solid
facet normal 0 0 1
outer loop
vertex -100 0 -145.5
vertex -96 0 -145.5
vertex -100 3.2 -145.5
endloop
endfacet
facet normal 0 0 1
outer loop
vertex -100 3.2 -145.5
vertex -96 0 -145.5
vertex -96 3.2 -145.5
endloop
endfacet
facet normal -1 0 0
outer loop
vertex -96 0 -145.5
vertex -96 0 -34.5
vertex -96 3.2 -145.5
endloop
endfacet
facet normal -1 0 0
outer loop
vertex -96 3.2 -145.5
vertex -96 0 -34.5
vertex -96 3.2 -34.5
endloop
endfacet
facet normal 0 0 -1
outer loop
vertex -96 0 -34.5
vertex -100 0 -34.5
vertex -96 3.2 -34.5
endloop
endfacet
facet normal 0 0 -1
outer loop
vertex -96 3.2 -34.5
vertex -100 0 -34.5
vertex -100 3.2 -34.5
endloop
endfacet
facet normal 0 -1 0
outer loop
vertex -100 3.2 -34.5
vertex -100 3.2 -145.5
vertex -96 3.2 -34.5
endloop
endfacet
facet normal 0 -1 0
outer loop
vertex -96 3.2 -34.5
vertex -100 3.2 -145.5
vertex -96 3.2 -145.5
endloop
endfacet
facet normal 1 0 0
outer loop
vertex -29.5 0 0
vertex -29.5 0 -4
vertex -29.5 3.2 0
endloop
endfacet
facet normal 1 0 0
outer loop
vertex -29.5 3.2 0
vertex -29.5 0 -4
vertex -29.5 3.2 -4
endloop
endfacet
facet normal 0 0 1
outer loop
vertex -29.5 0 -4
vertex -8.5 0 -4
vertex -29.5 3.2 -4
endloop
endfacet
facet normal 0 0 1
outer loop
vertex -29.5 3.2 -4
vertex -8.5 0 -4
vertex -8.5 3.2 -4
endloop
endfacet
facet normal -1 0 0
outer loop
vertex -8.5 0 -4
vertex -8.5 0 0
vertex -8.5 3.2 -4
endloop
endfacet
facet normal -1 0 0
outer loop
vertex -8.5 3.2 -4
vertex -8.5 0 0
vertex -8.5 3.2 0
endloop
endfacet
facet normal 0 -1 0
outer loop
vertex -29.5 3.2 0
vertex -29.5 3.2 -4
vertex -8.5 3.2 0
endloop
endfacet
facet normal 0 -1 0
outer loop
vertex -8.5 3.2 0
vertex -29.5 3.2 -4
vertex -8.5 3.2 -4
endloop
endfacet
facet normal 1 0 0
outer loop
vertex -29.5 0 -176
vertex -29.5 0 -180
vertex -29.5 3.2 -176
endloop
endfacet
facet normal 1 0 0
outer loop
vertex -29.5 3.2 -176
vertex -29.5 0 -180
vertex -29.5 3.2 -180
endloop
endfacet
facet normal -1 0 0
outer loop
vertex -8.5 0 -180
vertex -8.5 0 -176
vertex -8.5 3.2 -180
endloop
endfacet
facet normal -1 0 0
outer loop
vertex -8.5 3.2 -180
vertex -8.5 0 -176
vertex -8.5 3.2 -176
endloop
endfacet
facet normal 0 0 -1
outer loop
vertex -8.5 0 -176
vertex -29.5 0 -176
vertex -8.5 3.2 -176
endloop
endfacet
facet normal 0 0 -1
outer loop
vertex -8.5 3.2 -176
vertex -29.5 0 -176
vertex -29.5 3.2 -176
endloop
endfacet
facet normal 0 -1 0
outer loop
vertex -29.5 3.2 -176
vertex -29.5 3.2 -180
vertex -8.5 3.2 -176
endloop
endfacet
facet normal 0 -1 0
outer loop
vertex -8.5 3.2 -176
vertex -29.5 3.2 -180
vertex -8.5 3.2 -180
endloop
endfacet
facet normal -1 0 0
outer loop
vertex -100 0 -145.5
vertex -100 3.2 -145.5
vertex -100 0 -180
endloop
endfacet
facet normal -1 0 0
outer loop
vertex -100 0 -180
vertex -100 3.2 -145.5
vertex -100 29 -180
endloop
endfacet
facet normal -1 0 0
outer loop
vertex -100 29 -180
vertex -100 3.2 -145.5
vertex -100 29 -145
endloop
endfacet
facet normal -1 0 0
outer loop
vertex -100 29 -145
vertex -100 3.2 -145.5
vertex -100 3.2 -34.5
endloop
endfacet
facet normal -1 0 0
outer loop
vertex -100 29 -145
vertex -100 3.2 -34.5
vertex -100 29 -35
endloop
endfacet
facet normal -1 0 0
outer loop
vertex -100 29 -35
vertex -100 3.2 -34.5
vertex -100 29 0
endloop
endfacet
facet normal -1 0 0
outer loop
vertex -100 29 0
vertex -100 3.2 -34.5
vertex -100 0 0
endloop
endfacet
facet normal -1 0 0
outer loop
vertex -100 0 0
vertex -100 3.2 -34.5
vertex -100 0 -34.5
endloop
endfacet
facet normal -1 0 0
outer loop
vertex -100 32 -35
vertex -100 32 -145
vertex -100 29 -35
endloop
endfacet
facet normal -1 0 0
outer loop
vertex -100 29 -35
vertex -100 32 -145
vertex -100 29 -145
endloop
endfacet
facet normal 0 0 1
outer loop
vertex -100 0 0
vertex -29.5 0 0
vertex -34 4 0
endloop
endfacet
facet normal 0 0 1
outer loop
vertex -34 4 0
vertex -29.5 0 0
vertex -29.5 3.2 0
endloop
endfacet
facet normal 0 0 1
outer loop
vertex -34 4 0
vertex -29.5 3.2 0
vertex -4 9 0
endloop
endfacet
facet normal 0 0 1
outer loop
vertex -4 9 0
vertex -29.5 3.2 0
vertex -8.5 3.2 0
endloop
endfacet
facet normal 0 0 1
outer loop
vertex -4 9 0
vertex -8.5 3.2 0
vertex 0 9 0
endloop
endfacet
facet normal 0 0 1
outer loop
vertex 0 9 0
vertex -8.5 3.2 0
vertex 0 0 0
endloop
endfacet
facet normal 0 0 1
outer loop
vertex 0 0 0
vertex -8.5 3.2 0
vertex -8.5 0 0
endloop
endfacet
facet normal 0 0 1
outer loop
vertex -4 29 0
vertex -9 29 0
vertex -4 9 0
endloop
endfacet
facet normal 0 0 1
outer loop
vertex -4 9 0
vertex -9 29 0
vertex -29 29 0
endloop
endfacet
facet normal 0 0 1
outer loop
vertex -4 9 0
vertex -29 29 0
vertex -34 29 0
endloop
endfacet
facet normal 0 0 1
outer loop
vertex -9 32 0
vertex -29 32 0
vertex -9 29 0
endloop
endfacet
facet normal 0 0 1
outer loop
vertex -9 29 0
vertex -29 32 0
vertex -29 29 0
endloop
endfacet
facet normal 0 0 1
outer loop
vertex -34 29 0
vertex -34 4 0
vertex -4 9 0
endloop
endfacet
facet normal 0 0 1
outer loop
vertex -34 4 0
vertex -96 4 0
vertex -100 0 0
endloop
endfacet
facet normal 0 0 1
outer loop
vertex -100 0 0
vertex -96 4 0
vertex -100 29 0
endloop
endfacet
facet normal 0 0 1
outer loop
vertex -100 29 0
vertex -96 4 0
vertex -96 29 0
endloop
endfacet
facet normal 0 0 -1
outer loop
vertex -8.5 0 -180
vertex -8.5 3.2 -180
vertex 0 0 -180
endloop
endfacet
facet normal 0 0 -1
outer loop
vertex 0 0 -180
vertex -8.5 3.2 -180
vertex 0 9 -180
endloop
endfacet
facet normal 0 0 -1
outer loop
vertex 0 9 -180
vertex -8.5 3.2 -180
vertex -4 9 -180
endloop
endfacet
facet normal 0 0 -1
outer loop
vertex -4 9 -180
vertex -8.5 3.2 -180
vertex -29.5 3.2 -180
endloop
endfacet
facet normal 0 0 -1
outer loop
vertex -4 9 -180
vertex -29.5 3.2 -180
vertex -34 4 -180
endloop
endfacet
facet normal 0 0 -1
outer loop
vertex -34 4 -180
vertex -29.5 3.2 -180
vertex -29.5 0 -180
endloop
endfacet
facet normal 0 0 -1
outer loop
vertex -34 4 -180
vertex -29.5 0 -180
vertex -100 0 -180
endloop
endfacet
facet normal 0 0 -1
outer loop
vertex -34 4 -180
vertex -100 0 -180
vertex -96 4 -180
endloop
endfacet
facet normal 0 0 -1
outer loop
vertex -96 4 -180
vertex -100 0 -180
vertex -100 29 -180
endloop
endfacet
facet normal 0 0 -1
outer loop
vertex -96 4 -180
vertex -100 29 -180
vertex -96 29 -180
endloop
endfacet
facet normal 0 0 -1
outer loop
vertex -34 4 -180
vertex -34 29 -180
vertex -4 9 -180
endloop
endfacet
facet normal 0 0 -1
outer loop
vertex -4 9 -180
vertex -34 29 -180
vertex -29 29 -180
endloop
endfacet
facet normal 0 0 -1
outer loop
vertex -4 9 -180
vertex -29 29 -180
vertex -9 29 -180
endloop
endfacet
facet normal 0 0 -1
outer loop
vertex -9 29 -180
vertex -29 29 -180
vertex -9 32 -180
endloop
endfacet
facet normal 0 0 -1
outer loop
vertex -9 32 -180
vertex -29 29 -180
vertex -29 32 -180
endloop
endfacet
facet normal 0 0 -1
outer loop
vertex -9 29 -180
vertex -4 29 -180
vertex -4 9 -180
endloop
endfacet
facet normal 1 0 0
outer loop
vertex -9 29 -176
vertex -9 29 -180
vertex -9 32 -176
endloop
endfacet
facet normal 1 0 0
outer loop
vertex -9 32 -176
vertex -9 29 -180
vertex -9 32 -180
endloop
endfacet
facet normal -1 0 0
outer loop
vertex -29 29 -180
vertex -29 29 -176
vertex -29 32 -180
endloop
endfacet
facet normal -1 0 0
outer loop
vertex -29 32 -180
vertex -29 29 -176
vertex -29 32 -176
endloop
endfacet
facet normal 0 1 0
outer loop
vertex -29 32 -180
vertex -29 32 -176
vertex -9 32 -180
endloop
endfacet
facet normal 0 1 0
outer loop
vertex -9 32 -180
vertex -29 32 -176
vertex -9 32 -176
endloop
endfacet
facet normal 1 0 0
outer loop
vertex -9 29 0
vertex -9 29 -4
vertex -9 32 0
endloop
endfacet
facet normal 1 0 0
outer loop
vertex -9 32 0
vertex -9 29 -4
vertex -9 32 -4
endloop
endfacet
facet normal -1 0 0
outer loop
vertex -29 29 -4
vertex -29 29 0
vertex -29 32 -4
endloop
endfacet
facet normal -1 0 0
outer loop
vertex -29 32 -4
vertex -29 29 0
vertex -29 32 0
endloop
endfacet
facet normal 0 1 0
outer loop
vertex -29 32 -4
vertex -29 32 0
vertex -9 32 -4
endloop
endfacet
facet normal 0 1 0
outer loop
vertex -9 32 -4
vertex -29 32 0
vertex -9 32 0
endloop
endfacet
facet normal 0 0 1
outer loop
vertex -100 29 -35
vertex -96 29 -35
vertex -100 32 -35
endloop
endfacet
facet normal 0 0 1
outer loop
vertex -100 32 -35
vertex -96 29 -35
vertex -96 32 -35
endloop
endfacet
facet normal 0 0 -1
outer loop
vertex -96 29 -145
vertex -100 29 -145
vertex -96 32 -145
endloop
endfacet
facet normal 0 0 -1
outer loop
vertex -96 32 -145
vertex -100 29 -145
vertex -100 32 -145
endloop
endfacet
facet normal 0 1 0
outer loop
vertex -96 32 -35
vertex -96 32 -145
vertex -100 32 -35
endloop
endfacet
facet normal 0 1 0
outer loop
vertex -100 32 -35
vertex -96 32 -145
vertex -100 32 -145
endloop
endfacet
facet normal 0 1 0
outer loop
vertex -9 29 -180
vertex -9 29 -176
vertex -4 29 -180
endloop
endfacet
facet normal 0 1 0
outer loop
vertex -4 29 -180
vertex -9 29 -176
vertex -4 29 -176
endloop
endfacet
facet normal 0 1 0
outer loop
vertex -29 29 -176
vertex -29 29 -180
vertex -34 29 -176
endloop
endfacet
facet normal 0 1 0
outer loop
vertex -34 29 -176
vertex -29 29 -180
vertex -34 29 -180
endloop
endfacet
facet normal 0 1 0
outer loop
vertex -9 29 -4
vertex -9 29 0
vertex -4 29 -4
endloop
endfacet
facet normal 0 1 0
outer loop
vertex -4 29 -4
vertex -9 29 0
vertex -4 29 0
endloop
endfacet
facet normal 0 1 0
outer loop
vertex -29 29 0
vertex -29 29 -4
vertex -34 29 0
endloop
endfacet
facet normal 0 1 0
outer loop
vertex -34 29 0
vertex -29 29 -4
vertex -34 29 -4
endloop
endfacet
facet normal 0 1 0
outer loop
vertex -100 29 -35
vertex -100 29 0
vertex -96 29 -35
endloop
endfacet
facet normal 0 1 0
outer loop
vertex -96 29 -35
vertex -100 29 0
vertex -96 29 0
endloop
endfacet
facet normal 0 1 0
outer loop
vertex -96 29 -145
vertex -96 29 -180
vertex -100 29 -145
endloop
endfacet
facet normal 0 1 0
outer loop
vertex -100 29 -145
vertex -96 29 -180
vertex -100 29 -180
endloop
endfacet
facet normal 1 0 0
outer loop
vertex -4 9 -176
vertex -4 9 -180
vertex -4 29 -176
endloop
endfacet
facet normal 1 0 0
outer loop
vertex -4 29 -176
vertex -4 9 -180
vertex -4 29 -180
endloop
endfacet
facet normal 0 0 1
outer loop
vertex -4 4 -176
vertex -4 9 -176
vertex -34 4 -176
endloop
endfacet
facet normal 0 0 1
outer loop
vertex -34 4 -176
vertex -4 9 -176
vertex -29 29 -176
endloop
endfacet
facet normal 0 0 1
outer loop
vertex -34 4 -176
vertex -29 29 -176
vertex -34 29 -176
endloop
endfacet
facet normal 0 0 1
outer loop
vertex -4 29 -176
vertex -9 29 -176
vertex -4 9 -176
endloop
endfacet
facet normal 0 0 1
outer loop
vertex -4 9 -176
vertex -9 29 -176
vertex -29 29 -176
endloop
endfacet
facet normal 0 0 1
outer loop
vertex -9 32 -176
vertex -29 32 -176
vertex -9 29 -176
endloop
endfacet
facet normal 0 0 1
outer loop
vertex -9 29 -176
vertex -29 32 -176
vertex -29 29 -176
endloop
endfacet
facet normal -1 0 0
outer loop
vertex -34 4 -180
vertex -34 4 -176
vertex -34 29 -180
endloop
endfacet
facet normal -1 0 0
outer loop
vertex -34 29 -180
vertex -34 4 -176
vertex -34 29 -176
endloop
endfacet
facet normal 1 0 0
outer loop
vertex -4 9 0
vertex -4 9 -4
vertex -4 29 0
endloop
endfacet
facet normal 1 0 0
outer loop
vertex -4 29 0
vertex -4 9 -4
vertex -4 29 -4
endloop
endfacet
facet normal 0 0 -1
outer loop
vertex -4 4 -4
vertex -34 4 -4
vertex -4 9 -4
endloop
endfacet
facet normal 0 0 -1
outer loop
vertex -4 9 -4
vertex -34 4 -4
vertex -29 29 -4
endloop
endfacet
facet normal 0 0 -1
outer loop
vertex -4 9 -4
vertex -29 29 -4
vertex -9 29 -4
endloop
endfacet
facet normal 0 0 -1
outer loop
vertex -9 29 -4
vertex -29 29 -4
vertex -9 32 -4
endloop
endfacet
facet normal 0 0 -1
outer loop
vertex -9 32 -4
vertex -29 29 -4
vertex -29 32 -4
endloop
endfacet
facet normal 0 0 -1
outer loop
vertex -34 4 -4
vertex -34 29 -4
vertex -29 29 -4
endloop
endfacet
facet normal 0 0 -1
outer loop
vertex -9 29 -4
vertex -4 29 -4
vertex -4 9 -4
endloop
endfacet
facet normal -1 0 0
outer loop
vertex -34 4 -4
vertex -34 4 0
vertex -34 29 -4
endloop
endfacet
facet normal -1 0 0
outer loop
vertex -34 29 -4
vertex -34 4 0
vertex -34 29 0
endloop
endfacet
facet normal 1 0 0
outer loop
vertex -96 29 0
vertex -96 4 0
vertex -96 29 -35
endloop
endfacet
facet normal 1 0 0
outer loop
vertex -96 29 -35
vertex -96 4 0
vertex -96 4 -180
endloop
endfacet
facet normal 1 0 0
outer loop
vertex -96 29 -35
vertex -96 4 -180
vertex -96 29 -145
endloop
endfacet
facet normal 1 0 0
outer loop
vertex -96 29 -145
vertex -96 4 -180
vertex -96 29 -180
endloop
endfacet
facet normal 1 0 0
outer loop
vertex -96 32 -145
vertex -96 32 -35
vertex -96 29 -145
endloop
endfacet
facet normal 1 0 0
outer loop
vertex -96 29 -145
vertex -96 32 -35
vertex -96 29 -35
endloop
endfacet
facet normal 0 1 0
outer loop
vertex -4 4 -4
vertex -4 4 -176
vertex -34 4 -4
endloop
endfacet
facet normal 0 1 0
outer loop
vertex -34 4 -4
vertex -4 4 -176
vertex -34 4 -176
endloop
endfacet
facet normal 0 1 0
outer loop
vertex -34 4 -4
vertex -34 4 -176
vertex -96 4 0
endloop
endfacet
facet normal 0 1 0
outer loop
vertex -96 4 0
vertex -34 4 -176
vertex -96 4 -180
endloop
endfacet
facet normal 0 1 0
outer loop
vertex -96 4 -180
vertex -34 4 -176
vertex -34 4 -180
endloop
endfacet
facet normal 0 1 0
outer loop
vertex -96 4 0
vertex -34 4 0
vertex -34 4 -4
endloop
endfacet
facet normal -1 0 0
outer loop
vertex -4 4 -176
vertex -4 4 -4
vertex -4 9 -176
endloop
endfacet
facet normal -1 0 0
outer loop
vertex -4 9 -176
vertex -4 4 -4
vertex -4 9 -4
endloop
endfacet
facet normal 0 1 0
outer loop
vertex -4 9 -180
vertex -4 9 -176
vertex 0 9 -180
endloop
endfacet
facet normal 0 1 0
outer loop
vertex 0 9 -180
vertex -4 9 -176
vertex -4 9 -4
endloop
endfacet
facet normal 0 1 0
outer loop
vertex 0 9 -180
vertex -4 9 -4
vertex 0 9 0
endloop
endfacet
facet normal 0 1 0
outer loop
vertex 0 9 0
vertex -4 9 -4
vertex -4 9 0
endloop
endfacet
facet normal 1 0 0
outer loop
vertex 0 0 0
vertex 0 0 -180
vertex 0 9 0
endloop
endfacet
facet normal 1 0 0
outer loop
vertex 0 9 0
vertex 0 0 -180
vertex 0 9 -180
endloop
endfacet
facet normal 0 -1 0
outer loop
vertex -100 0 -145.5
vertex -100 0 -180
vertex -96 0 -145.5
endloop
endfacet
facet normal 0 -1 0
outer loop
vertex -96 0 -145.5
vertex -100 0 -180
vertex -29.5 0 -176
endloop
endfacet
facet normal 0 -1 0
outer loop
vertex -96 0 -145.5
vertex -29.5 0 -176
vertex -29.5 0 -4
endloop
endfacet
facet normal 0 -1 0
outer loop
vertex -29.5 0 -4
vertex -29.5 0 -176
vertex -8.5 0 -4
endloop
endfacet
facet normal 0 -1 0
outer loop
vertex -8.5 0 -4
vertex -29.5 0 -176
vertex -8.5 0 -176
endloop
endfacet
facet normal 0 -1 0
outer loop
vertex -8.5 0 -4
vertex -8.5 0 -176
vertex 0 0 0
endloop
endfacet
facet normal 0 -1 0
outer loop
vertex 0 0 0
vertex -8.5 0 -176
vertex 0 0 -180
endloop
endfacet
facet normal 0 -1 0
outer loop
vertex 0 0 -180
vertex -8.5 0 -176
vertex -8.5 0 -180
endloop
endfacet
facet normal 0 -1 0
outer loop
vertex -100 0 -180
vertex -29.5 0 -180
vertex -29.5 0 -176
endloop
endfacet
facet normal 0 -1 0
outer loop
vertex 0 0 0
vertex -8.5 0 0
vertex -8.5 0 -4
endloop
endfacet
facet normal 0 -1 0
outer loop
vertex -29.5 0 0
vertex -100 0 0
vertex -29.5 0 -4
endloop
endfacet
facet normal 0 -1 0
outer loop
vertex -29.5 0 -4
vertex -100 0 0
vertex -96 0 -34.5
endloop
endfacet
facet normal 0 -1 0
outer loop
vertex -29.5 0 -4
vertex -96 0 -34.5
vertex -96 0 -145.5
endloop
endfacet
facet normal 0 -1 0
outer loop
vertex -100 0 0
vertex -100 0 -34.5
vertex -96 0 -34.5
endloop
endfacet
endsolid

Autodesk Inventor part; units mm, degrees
ref_plane "YZ Plane" through (0, 0, 0) normal (1, 0, 0) x (0, 1, 0)
ref_plane "XZ Plane" through (0, 0, 0) normal (0, 1, 0) x (-1, 0, 0)
ref_plane "XY Plane" through (0, 0, 0) normal (0, 0, 1) x (1, 0, 0)
sketch "Sketch1" plane through (0, 0, 0) normal (0, 1, 0) x (-1, 0, 0)
  line L0 (0, 0) -> (100, 0)
  line L1 (100, 0) -> (100, -180)
  line L2 (100, -180) -> (0, -180)
  line L3 (0, -180) -> (0, 0)
  dimension "d0" = 100
  dimension "d1" = 180
extrude "Extrusion1" add sketch "Sketch1" along normal blind 4
sketch "Sketch2" plane through (0, 4, 0) normal (0, 1, 0) x (1, 0, 0)
  line L0 (-100, 180) -> (-100, 0) projected
  line L1 (0, 180) -> (-100, 180) projected
  line L2 (-100, 0) -> (-96, 0)
  line L3 (-96, 0) -> (-96, 180)
  line L4 (-96, 180) -> (-100, 180)
  line L5 (-100, 180) -> (-100, 0)
  line L6 (0, 180) -> (-4, 180)
  line L7 (-4, 180) -> (-4, 0)
  line L8 (-4, 0) -> (0, 0)
  line L9 (0, 0) -> (0, 180)
  dimension "d4" = 4
  dimension "d5" = 4
extrude "Extrusion2" add sketch "Sketch2" along normal blind 5 contours L1 L9 L8 L7
sketch "Sketch3" plane through (0, 4, 0) normal (0, 1, 0) x (1, 0, 0)
  line L0 (-4, 180) -> (-4, 0) projected
  line L1 (-4, 0) -> (-34, 0)
  line L2 (-34, 0) -> (-34, 4)
  line L3 (-34, 4) -> (-4, 4)
  line L4 (-4, 4) -> (-4, 0)
  line L5 (-4, 180) -> (-100, 180) projected
  line L6 (-4, 180) -> (-34, 180)
  line L7 (-34, 180) -> (-34, 176)
  line L8 (-34, 176) -> (-4, 176)
  line L9 (-4, 176) -> (-4, 180)
  line L10 (-100, 0) -> (0, 0) projected
  line L11 (-100, 0) -> (-96, 0)
  line L12 (-96, 0) -> (-96, 180)
  line L13 (-96, 180) -> (-100, 180)
  line L14 (-100, 180) -> (-100, 0)
  point P0 (-4, 176)
  point P1 (-4, 4)
  dimension "d8" = 30
  dimension "d9" = 4
  dimension "d10" = 4
  dimension "d11" = 4
extrude "Extrusion3" add sketch "Sketch3" along normal blind 25 contours L0 L8 L7 L5 | L0 L1 L2 L3 | L12 L10 L14 L5
sketch "Sketch4" plane through (0, 29, 0) normal (0, 1, 0) x (1, 0, 0)
  line L0 (-100, 0) -> (-96, 0) projected
  line L1 (-96, 0) -> (-96, 180) projected
  line L2 (-96, 180) -> (-100, 180) projected
  line L3 (-100, 180) -> (-100, 0) projected
  line L4 (-4, 176) -> (-4, 180) projected
  line L5 (-4, 180) -> (-34, 180) projected
  line L6 (-34, 180) -> (-34, 176) projected
  line L7 (-34, 176) -> (-4, 176) projected
  line L8 (-34, 0) -> (-4, 0) projected
  line L9 (-34, 4) -> (-34, 0) projected
  line L10 (-34, 0) -> (-4, 0) projected
  line L11 (-4, 0) -> (-4, 4) projected
  line L12 (-4, 4) -> (-34, 4) projected
  line L13 (-100, 90) -> (-100, 145)
  line L14 (-100, 145) -> (-96, 145)
  line L15 (-96, 145) -> (-96, 35)
  line L16 (-96, 0) -> (-96, 180) projected
  line L17 (-96, 35) -> (-100, 35)
  line L18 (-100, 35) -> (-100, 90)
  line L19 (-4, 176) -> (-34, 176) projected
  line L20 (-19, 176) -> (-29, 176)
  line L21 (-29, 176) -> (-29, 180)
  line L22 (-29, 180) -> (-9, 180)
  line L23 (0, 180) -> (-100, 180) projected
  line L24 (-9, 180) -> (-9, 176)
  line L25 (-19, 176) -> (-9, 176)
  line L26 (-19, 4) -> (-29, 4)
  line L27 (-29, 4) -> (-29, 0)
  line L28 (-29, 0) -> (-9, 0)
  line L29 (-9, 0) -> (-9, 4)
  line L30 (-4, 4) -> (-34, 4) projected
  line L31 (-9, 4) -> (-19, 4)
  point P0 (0, 0)
  dimension "d14" = 55
  dimension "d15" = 110
  dimension "d16" = 10
  dimension "d17" = 20
extrude "Extrusion4" add sketch "Sketch4" along normal blind 3 contours L3 L14 L1 L17 | L5 L24 L7 L21 | L27 L12 L29 L8
sketch "Sketch5" plane through (0, 0, 0) normal (0, -1, 0) x (1, 0, 0)
  line L0 (-9, -4) -> (-29, -4) projected
  line L1 (-29, -4) -> (-29, 0) projected
  line L2 (-29, 0) -> (-9, 0) projected
  line L3 (-9, 0) -> (-9, -4) projected
  line L4 (-9, -180) -> (-29, -180) projected
  line L5 (-29, -180) -> (-29, -176) projected
  line L6 (-29, -176) -> (-9, -176) projected
  line L7 (-9, -176) -> (-9, -180) projected
  line L8 (-96, -35) -> (-96, -145) projected
  line L9 (-96, -145) -> (-100, -145) projected
  line L10 (-100, -145) -> (-100, -35) projected
  line L11 (-100, -35) -> (-96, -35) projected
  line L12 (-96, -180) -> (-96, 0) projected
  line L13 (-100, -35) -> (-96, -35)
  line L14 (-96, -35) -> (-96, -34.5)
  line L15 (-96, -34.5) -> (-100, -34.5)
  line L16 (-100, -34.5) -> (-100, -35)
  line L17 (-100, -145) -> (-96, -145)
  line L18 (-96, -145) -> (-96, -145.5)
  line L19 (-96, -145.5) -> (-100, -145.5)
  line L20 (-100, -145.5) -> (-100, -145)
  line L21 (-4, -176) -> (-34, -176) projected
  line L22 (-29, -180) -> (-29.5, -180)
  line L23 (-29.5, -180) -> (-29.5, -176)
  line L24 (-29.5, -176) -> (-29, -176)
  line L25 (-29, -176) -> (-29, -180)
  line L26 (-9, -176) -> (-8.5, -176)
  line L27 (-8.5, -176) -> (-8.5, -180)
  line L28 (-8.5, -180) -> (-9, -180)
  line L29 (-9, -180) -> (-9, -176)
  line L30 (-34, -4) -> (-4, -4) projected
  line L31 (-29, 0) -> (-29.5, 0)
  line L32 (-29.5, 0) -> (-29.5, -4)
  line L33 (-29.5, -4) -> (-29, -4)
  line L34 (-29, -4) -> (-29, 0)
  line L35 (-9, 0) -> (-8.5, 0)
  line L36 (-8.5, 0) -> (-8.5, -4)
  line L37 (-8.5, -4) -> (-9, -4)
  line L38 (-9, -4) -> (-9, 0)
  point P0 (0, 0)
  dimension "d22" = 0.5
  dimension "d23" = 0.5
  dimension "d24" = 0.5
  dimension "d25" = 0.5
  dimension "d26" = 0.5
  dimension "d27" = 0.5
extrude "Extrusion5" cut sketch "Sketch5" against normal blind 3.2
properties part number "caja_attiny"
